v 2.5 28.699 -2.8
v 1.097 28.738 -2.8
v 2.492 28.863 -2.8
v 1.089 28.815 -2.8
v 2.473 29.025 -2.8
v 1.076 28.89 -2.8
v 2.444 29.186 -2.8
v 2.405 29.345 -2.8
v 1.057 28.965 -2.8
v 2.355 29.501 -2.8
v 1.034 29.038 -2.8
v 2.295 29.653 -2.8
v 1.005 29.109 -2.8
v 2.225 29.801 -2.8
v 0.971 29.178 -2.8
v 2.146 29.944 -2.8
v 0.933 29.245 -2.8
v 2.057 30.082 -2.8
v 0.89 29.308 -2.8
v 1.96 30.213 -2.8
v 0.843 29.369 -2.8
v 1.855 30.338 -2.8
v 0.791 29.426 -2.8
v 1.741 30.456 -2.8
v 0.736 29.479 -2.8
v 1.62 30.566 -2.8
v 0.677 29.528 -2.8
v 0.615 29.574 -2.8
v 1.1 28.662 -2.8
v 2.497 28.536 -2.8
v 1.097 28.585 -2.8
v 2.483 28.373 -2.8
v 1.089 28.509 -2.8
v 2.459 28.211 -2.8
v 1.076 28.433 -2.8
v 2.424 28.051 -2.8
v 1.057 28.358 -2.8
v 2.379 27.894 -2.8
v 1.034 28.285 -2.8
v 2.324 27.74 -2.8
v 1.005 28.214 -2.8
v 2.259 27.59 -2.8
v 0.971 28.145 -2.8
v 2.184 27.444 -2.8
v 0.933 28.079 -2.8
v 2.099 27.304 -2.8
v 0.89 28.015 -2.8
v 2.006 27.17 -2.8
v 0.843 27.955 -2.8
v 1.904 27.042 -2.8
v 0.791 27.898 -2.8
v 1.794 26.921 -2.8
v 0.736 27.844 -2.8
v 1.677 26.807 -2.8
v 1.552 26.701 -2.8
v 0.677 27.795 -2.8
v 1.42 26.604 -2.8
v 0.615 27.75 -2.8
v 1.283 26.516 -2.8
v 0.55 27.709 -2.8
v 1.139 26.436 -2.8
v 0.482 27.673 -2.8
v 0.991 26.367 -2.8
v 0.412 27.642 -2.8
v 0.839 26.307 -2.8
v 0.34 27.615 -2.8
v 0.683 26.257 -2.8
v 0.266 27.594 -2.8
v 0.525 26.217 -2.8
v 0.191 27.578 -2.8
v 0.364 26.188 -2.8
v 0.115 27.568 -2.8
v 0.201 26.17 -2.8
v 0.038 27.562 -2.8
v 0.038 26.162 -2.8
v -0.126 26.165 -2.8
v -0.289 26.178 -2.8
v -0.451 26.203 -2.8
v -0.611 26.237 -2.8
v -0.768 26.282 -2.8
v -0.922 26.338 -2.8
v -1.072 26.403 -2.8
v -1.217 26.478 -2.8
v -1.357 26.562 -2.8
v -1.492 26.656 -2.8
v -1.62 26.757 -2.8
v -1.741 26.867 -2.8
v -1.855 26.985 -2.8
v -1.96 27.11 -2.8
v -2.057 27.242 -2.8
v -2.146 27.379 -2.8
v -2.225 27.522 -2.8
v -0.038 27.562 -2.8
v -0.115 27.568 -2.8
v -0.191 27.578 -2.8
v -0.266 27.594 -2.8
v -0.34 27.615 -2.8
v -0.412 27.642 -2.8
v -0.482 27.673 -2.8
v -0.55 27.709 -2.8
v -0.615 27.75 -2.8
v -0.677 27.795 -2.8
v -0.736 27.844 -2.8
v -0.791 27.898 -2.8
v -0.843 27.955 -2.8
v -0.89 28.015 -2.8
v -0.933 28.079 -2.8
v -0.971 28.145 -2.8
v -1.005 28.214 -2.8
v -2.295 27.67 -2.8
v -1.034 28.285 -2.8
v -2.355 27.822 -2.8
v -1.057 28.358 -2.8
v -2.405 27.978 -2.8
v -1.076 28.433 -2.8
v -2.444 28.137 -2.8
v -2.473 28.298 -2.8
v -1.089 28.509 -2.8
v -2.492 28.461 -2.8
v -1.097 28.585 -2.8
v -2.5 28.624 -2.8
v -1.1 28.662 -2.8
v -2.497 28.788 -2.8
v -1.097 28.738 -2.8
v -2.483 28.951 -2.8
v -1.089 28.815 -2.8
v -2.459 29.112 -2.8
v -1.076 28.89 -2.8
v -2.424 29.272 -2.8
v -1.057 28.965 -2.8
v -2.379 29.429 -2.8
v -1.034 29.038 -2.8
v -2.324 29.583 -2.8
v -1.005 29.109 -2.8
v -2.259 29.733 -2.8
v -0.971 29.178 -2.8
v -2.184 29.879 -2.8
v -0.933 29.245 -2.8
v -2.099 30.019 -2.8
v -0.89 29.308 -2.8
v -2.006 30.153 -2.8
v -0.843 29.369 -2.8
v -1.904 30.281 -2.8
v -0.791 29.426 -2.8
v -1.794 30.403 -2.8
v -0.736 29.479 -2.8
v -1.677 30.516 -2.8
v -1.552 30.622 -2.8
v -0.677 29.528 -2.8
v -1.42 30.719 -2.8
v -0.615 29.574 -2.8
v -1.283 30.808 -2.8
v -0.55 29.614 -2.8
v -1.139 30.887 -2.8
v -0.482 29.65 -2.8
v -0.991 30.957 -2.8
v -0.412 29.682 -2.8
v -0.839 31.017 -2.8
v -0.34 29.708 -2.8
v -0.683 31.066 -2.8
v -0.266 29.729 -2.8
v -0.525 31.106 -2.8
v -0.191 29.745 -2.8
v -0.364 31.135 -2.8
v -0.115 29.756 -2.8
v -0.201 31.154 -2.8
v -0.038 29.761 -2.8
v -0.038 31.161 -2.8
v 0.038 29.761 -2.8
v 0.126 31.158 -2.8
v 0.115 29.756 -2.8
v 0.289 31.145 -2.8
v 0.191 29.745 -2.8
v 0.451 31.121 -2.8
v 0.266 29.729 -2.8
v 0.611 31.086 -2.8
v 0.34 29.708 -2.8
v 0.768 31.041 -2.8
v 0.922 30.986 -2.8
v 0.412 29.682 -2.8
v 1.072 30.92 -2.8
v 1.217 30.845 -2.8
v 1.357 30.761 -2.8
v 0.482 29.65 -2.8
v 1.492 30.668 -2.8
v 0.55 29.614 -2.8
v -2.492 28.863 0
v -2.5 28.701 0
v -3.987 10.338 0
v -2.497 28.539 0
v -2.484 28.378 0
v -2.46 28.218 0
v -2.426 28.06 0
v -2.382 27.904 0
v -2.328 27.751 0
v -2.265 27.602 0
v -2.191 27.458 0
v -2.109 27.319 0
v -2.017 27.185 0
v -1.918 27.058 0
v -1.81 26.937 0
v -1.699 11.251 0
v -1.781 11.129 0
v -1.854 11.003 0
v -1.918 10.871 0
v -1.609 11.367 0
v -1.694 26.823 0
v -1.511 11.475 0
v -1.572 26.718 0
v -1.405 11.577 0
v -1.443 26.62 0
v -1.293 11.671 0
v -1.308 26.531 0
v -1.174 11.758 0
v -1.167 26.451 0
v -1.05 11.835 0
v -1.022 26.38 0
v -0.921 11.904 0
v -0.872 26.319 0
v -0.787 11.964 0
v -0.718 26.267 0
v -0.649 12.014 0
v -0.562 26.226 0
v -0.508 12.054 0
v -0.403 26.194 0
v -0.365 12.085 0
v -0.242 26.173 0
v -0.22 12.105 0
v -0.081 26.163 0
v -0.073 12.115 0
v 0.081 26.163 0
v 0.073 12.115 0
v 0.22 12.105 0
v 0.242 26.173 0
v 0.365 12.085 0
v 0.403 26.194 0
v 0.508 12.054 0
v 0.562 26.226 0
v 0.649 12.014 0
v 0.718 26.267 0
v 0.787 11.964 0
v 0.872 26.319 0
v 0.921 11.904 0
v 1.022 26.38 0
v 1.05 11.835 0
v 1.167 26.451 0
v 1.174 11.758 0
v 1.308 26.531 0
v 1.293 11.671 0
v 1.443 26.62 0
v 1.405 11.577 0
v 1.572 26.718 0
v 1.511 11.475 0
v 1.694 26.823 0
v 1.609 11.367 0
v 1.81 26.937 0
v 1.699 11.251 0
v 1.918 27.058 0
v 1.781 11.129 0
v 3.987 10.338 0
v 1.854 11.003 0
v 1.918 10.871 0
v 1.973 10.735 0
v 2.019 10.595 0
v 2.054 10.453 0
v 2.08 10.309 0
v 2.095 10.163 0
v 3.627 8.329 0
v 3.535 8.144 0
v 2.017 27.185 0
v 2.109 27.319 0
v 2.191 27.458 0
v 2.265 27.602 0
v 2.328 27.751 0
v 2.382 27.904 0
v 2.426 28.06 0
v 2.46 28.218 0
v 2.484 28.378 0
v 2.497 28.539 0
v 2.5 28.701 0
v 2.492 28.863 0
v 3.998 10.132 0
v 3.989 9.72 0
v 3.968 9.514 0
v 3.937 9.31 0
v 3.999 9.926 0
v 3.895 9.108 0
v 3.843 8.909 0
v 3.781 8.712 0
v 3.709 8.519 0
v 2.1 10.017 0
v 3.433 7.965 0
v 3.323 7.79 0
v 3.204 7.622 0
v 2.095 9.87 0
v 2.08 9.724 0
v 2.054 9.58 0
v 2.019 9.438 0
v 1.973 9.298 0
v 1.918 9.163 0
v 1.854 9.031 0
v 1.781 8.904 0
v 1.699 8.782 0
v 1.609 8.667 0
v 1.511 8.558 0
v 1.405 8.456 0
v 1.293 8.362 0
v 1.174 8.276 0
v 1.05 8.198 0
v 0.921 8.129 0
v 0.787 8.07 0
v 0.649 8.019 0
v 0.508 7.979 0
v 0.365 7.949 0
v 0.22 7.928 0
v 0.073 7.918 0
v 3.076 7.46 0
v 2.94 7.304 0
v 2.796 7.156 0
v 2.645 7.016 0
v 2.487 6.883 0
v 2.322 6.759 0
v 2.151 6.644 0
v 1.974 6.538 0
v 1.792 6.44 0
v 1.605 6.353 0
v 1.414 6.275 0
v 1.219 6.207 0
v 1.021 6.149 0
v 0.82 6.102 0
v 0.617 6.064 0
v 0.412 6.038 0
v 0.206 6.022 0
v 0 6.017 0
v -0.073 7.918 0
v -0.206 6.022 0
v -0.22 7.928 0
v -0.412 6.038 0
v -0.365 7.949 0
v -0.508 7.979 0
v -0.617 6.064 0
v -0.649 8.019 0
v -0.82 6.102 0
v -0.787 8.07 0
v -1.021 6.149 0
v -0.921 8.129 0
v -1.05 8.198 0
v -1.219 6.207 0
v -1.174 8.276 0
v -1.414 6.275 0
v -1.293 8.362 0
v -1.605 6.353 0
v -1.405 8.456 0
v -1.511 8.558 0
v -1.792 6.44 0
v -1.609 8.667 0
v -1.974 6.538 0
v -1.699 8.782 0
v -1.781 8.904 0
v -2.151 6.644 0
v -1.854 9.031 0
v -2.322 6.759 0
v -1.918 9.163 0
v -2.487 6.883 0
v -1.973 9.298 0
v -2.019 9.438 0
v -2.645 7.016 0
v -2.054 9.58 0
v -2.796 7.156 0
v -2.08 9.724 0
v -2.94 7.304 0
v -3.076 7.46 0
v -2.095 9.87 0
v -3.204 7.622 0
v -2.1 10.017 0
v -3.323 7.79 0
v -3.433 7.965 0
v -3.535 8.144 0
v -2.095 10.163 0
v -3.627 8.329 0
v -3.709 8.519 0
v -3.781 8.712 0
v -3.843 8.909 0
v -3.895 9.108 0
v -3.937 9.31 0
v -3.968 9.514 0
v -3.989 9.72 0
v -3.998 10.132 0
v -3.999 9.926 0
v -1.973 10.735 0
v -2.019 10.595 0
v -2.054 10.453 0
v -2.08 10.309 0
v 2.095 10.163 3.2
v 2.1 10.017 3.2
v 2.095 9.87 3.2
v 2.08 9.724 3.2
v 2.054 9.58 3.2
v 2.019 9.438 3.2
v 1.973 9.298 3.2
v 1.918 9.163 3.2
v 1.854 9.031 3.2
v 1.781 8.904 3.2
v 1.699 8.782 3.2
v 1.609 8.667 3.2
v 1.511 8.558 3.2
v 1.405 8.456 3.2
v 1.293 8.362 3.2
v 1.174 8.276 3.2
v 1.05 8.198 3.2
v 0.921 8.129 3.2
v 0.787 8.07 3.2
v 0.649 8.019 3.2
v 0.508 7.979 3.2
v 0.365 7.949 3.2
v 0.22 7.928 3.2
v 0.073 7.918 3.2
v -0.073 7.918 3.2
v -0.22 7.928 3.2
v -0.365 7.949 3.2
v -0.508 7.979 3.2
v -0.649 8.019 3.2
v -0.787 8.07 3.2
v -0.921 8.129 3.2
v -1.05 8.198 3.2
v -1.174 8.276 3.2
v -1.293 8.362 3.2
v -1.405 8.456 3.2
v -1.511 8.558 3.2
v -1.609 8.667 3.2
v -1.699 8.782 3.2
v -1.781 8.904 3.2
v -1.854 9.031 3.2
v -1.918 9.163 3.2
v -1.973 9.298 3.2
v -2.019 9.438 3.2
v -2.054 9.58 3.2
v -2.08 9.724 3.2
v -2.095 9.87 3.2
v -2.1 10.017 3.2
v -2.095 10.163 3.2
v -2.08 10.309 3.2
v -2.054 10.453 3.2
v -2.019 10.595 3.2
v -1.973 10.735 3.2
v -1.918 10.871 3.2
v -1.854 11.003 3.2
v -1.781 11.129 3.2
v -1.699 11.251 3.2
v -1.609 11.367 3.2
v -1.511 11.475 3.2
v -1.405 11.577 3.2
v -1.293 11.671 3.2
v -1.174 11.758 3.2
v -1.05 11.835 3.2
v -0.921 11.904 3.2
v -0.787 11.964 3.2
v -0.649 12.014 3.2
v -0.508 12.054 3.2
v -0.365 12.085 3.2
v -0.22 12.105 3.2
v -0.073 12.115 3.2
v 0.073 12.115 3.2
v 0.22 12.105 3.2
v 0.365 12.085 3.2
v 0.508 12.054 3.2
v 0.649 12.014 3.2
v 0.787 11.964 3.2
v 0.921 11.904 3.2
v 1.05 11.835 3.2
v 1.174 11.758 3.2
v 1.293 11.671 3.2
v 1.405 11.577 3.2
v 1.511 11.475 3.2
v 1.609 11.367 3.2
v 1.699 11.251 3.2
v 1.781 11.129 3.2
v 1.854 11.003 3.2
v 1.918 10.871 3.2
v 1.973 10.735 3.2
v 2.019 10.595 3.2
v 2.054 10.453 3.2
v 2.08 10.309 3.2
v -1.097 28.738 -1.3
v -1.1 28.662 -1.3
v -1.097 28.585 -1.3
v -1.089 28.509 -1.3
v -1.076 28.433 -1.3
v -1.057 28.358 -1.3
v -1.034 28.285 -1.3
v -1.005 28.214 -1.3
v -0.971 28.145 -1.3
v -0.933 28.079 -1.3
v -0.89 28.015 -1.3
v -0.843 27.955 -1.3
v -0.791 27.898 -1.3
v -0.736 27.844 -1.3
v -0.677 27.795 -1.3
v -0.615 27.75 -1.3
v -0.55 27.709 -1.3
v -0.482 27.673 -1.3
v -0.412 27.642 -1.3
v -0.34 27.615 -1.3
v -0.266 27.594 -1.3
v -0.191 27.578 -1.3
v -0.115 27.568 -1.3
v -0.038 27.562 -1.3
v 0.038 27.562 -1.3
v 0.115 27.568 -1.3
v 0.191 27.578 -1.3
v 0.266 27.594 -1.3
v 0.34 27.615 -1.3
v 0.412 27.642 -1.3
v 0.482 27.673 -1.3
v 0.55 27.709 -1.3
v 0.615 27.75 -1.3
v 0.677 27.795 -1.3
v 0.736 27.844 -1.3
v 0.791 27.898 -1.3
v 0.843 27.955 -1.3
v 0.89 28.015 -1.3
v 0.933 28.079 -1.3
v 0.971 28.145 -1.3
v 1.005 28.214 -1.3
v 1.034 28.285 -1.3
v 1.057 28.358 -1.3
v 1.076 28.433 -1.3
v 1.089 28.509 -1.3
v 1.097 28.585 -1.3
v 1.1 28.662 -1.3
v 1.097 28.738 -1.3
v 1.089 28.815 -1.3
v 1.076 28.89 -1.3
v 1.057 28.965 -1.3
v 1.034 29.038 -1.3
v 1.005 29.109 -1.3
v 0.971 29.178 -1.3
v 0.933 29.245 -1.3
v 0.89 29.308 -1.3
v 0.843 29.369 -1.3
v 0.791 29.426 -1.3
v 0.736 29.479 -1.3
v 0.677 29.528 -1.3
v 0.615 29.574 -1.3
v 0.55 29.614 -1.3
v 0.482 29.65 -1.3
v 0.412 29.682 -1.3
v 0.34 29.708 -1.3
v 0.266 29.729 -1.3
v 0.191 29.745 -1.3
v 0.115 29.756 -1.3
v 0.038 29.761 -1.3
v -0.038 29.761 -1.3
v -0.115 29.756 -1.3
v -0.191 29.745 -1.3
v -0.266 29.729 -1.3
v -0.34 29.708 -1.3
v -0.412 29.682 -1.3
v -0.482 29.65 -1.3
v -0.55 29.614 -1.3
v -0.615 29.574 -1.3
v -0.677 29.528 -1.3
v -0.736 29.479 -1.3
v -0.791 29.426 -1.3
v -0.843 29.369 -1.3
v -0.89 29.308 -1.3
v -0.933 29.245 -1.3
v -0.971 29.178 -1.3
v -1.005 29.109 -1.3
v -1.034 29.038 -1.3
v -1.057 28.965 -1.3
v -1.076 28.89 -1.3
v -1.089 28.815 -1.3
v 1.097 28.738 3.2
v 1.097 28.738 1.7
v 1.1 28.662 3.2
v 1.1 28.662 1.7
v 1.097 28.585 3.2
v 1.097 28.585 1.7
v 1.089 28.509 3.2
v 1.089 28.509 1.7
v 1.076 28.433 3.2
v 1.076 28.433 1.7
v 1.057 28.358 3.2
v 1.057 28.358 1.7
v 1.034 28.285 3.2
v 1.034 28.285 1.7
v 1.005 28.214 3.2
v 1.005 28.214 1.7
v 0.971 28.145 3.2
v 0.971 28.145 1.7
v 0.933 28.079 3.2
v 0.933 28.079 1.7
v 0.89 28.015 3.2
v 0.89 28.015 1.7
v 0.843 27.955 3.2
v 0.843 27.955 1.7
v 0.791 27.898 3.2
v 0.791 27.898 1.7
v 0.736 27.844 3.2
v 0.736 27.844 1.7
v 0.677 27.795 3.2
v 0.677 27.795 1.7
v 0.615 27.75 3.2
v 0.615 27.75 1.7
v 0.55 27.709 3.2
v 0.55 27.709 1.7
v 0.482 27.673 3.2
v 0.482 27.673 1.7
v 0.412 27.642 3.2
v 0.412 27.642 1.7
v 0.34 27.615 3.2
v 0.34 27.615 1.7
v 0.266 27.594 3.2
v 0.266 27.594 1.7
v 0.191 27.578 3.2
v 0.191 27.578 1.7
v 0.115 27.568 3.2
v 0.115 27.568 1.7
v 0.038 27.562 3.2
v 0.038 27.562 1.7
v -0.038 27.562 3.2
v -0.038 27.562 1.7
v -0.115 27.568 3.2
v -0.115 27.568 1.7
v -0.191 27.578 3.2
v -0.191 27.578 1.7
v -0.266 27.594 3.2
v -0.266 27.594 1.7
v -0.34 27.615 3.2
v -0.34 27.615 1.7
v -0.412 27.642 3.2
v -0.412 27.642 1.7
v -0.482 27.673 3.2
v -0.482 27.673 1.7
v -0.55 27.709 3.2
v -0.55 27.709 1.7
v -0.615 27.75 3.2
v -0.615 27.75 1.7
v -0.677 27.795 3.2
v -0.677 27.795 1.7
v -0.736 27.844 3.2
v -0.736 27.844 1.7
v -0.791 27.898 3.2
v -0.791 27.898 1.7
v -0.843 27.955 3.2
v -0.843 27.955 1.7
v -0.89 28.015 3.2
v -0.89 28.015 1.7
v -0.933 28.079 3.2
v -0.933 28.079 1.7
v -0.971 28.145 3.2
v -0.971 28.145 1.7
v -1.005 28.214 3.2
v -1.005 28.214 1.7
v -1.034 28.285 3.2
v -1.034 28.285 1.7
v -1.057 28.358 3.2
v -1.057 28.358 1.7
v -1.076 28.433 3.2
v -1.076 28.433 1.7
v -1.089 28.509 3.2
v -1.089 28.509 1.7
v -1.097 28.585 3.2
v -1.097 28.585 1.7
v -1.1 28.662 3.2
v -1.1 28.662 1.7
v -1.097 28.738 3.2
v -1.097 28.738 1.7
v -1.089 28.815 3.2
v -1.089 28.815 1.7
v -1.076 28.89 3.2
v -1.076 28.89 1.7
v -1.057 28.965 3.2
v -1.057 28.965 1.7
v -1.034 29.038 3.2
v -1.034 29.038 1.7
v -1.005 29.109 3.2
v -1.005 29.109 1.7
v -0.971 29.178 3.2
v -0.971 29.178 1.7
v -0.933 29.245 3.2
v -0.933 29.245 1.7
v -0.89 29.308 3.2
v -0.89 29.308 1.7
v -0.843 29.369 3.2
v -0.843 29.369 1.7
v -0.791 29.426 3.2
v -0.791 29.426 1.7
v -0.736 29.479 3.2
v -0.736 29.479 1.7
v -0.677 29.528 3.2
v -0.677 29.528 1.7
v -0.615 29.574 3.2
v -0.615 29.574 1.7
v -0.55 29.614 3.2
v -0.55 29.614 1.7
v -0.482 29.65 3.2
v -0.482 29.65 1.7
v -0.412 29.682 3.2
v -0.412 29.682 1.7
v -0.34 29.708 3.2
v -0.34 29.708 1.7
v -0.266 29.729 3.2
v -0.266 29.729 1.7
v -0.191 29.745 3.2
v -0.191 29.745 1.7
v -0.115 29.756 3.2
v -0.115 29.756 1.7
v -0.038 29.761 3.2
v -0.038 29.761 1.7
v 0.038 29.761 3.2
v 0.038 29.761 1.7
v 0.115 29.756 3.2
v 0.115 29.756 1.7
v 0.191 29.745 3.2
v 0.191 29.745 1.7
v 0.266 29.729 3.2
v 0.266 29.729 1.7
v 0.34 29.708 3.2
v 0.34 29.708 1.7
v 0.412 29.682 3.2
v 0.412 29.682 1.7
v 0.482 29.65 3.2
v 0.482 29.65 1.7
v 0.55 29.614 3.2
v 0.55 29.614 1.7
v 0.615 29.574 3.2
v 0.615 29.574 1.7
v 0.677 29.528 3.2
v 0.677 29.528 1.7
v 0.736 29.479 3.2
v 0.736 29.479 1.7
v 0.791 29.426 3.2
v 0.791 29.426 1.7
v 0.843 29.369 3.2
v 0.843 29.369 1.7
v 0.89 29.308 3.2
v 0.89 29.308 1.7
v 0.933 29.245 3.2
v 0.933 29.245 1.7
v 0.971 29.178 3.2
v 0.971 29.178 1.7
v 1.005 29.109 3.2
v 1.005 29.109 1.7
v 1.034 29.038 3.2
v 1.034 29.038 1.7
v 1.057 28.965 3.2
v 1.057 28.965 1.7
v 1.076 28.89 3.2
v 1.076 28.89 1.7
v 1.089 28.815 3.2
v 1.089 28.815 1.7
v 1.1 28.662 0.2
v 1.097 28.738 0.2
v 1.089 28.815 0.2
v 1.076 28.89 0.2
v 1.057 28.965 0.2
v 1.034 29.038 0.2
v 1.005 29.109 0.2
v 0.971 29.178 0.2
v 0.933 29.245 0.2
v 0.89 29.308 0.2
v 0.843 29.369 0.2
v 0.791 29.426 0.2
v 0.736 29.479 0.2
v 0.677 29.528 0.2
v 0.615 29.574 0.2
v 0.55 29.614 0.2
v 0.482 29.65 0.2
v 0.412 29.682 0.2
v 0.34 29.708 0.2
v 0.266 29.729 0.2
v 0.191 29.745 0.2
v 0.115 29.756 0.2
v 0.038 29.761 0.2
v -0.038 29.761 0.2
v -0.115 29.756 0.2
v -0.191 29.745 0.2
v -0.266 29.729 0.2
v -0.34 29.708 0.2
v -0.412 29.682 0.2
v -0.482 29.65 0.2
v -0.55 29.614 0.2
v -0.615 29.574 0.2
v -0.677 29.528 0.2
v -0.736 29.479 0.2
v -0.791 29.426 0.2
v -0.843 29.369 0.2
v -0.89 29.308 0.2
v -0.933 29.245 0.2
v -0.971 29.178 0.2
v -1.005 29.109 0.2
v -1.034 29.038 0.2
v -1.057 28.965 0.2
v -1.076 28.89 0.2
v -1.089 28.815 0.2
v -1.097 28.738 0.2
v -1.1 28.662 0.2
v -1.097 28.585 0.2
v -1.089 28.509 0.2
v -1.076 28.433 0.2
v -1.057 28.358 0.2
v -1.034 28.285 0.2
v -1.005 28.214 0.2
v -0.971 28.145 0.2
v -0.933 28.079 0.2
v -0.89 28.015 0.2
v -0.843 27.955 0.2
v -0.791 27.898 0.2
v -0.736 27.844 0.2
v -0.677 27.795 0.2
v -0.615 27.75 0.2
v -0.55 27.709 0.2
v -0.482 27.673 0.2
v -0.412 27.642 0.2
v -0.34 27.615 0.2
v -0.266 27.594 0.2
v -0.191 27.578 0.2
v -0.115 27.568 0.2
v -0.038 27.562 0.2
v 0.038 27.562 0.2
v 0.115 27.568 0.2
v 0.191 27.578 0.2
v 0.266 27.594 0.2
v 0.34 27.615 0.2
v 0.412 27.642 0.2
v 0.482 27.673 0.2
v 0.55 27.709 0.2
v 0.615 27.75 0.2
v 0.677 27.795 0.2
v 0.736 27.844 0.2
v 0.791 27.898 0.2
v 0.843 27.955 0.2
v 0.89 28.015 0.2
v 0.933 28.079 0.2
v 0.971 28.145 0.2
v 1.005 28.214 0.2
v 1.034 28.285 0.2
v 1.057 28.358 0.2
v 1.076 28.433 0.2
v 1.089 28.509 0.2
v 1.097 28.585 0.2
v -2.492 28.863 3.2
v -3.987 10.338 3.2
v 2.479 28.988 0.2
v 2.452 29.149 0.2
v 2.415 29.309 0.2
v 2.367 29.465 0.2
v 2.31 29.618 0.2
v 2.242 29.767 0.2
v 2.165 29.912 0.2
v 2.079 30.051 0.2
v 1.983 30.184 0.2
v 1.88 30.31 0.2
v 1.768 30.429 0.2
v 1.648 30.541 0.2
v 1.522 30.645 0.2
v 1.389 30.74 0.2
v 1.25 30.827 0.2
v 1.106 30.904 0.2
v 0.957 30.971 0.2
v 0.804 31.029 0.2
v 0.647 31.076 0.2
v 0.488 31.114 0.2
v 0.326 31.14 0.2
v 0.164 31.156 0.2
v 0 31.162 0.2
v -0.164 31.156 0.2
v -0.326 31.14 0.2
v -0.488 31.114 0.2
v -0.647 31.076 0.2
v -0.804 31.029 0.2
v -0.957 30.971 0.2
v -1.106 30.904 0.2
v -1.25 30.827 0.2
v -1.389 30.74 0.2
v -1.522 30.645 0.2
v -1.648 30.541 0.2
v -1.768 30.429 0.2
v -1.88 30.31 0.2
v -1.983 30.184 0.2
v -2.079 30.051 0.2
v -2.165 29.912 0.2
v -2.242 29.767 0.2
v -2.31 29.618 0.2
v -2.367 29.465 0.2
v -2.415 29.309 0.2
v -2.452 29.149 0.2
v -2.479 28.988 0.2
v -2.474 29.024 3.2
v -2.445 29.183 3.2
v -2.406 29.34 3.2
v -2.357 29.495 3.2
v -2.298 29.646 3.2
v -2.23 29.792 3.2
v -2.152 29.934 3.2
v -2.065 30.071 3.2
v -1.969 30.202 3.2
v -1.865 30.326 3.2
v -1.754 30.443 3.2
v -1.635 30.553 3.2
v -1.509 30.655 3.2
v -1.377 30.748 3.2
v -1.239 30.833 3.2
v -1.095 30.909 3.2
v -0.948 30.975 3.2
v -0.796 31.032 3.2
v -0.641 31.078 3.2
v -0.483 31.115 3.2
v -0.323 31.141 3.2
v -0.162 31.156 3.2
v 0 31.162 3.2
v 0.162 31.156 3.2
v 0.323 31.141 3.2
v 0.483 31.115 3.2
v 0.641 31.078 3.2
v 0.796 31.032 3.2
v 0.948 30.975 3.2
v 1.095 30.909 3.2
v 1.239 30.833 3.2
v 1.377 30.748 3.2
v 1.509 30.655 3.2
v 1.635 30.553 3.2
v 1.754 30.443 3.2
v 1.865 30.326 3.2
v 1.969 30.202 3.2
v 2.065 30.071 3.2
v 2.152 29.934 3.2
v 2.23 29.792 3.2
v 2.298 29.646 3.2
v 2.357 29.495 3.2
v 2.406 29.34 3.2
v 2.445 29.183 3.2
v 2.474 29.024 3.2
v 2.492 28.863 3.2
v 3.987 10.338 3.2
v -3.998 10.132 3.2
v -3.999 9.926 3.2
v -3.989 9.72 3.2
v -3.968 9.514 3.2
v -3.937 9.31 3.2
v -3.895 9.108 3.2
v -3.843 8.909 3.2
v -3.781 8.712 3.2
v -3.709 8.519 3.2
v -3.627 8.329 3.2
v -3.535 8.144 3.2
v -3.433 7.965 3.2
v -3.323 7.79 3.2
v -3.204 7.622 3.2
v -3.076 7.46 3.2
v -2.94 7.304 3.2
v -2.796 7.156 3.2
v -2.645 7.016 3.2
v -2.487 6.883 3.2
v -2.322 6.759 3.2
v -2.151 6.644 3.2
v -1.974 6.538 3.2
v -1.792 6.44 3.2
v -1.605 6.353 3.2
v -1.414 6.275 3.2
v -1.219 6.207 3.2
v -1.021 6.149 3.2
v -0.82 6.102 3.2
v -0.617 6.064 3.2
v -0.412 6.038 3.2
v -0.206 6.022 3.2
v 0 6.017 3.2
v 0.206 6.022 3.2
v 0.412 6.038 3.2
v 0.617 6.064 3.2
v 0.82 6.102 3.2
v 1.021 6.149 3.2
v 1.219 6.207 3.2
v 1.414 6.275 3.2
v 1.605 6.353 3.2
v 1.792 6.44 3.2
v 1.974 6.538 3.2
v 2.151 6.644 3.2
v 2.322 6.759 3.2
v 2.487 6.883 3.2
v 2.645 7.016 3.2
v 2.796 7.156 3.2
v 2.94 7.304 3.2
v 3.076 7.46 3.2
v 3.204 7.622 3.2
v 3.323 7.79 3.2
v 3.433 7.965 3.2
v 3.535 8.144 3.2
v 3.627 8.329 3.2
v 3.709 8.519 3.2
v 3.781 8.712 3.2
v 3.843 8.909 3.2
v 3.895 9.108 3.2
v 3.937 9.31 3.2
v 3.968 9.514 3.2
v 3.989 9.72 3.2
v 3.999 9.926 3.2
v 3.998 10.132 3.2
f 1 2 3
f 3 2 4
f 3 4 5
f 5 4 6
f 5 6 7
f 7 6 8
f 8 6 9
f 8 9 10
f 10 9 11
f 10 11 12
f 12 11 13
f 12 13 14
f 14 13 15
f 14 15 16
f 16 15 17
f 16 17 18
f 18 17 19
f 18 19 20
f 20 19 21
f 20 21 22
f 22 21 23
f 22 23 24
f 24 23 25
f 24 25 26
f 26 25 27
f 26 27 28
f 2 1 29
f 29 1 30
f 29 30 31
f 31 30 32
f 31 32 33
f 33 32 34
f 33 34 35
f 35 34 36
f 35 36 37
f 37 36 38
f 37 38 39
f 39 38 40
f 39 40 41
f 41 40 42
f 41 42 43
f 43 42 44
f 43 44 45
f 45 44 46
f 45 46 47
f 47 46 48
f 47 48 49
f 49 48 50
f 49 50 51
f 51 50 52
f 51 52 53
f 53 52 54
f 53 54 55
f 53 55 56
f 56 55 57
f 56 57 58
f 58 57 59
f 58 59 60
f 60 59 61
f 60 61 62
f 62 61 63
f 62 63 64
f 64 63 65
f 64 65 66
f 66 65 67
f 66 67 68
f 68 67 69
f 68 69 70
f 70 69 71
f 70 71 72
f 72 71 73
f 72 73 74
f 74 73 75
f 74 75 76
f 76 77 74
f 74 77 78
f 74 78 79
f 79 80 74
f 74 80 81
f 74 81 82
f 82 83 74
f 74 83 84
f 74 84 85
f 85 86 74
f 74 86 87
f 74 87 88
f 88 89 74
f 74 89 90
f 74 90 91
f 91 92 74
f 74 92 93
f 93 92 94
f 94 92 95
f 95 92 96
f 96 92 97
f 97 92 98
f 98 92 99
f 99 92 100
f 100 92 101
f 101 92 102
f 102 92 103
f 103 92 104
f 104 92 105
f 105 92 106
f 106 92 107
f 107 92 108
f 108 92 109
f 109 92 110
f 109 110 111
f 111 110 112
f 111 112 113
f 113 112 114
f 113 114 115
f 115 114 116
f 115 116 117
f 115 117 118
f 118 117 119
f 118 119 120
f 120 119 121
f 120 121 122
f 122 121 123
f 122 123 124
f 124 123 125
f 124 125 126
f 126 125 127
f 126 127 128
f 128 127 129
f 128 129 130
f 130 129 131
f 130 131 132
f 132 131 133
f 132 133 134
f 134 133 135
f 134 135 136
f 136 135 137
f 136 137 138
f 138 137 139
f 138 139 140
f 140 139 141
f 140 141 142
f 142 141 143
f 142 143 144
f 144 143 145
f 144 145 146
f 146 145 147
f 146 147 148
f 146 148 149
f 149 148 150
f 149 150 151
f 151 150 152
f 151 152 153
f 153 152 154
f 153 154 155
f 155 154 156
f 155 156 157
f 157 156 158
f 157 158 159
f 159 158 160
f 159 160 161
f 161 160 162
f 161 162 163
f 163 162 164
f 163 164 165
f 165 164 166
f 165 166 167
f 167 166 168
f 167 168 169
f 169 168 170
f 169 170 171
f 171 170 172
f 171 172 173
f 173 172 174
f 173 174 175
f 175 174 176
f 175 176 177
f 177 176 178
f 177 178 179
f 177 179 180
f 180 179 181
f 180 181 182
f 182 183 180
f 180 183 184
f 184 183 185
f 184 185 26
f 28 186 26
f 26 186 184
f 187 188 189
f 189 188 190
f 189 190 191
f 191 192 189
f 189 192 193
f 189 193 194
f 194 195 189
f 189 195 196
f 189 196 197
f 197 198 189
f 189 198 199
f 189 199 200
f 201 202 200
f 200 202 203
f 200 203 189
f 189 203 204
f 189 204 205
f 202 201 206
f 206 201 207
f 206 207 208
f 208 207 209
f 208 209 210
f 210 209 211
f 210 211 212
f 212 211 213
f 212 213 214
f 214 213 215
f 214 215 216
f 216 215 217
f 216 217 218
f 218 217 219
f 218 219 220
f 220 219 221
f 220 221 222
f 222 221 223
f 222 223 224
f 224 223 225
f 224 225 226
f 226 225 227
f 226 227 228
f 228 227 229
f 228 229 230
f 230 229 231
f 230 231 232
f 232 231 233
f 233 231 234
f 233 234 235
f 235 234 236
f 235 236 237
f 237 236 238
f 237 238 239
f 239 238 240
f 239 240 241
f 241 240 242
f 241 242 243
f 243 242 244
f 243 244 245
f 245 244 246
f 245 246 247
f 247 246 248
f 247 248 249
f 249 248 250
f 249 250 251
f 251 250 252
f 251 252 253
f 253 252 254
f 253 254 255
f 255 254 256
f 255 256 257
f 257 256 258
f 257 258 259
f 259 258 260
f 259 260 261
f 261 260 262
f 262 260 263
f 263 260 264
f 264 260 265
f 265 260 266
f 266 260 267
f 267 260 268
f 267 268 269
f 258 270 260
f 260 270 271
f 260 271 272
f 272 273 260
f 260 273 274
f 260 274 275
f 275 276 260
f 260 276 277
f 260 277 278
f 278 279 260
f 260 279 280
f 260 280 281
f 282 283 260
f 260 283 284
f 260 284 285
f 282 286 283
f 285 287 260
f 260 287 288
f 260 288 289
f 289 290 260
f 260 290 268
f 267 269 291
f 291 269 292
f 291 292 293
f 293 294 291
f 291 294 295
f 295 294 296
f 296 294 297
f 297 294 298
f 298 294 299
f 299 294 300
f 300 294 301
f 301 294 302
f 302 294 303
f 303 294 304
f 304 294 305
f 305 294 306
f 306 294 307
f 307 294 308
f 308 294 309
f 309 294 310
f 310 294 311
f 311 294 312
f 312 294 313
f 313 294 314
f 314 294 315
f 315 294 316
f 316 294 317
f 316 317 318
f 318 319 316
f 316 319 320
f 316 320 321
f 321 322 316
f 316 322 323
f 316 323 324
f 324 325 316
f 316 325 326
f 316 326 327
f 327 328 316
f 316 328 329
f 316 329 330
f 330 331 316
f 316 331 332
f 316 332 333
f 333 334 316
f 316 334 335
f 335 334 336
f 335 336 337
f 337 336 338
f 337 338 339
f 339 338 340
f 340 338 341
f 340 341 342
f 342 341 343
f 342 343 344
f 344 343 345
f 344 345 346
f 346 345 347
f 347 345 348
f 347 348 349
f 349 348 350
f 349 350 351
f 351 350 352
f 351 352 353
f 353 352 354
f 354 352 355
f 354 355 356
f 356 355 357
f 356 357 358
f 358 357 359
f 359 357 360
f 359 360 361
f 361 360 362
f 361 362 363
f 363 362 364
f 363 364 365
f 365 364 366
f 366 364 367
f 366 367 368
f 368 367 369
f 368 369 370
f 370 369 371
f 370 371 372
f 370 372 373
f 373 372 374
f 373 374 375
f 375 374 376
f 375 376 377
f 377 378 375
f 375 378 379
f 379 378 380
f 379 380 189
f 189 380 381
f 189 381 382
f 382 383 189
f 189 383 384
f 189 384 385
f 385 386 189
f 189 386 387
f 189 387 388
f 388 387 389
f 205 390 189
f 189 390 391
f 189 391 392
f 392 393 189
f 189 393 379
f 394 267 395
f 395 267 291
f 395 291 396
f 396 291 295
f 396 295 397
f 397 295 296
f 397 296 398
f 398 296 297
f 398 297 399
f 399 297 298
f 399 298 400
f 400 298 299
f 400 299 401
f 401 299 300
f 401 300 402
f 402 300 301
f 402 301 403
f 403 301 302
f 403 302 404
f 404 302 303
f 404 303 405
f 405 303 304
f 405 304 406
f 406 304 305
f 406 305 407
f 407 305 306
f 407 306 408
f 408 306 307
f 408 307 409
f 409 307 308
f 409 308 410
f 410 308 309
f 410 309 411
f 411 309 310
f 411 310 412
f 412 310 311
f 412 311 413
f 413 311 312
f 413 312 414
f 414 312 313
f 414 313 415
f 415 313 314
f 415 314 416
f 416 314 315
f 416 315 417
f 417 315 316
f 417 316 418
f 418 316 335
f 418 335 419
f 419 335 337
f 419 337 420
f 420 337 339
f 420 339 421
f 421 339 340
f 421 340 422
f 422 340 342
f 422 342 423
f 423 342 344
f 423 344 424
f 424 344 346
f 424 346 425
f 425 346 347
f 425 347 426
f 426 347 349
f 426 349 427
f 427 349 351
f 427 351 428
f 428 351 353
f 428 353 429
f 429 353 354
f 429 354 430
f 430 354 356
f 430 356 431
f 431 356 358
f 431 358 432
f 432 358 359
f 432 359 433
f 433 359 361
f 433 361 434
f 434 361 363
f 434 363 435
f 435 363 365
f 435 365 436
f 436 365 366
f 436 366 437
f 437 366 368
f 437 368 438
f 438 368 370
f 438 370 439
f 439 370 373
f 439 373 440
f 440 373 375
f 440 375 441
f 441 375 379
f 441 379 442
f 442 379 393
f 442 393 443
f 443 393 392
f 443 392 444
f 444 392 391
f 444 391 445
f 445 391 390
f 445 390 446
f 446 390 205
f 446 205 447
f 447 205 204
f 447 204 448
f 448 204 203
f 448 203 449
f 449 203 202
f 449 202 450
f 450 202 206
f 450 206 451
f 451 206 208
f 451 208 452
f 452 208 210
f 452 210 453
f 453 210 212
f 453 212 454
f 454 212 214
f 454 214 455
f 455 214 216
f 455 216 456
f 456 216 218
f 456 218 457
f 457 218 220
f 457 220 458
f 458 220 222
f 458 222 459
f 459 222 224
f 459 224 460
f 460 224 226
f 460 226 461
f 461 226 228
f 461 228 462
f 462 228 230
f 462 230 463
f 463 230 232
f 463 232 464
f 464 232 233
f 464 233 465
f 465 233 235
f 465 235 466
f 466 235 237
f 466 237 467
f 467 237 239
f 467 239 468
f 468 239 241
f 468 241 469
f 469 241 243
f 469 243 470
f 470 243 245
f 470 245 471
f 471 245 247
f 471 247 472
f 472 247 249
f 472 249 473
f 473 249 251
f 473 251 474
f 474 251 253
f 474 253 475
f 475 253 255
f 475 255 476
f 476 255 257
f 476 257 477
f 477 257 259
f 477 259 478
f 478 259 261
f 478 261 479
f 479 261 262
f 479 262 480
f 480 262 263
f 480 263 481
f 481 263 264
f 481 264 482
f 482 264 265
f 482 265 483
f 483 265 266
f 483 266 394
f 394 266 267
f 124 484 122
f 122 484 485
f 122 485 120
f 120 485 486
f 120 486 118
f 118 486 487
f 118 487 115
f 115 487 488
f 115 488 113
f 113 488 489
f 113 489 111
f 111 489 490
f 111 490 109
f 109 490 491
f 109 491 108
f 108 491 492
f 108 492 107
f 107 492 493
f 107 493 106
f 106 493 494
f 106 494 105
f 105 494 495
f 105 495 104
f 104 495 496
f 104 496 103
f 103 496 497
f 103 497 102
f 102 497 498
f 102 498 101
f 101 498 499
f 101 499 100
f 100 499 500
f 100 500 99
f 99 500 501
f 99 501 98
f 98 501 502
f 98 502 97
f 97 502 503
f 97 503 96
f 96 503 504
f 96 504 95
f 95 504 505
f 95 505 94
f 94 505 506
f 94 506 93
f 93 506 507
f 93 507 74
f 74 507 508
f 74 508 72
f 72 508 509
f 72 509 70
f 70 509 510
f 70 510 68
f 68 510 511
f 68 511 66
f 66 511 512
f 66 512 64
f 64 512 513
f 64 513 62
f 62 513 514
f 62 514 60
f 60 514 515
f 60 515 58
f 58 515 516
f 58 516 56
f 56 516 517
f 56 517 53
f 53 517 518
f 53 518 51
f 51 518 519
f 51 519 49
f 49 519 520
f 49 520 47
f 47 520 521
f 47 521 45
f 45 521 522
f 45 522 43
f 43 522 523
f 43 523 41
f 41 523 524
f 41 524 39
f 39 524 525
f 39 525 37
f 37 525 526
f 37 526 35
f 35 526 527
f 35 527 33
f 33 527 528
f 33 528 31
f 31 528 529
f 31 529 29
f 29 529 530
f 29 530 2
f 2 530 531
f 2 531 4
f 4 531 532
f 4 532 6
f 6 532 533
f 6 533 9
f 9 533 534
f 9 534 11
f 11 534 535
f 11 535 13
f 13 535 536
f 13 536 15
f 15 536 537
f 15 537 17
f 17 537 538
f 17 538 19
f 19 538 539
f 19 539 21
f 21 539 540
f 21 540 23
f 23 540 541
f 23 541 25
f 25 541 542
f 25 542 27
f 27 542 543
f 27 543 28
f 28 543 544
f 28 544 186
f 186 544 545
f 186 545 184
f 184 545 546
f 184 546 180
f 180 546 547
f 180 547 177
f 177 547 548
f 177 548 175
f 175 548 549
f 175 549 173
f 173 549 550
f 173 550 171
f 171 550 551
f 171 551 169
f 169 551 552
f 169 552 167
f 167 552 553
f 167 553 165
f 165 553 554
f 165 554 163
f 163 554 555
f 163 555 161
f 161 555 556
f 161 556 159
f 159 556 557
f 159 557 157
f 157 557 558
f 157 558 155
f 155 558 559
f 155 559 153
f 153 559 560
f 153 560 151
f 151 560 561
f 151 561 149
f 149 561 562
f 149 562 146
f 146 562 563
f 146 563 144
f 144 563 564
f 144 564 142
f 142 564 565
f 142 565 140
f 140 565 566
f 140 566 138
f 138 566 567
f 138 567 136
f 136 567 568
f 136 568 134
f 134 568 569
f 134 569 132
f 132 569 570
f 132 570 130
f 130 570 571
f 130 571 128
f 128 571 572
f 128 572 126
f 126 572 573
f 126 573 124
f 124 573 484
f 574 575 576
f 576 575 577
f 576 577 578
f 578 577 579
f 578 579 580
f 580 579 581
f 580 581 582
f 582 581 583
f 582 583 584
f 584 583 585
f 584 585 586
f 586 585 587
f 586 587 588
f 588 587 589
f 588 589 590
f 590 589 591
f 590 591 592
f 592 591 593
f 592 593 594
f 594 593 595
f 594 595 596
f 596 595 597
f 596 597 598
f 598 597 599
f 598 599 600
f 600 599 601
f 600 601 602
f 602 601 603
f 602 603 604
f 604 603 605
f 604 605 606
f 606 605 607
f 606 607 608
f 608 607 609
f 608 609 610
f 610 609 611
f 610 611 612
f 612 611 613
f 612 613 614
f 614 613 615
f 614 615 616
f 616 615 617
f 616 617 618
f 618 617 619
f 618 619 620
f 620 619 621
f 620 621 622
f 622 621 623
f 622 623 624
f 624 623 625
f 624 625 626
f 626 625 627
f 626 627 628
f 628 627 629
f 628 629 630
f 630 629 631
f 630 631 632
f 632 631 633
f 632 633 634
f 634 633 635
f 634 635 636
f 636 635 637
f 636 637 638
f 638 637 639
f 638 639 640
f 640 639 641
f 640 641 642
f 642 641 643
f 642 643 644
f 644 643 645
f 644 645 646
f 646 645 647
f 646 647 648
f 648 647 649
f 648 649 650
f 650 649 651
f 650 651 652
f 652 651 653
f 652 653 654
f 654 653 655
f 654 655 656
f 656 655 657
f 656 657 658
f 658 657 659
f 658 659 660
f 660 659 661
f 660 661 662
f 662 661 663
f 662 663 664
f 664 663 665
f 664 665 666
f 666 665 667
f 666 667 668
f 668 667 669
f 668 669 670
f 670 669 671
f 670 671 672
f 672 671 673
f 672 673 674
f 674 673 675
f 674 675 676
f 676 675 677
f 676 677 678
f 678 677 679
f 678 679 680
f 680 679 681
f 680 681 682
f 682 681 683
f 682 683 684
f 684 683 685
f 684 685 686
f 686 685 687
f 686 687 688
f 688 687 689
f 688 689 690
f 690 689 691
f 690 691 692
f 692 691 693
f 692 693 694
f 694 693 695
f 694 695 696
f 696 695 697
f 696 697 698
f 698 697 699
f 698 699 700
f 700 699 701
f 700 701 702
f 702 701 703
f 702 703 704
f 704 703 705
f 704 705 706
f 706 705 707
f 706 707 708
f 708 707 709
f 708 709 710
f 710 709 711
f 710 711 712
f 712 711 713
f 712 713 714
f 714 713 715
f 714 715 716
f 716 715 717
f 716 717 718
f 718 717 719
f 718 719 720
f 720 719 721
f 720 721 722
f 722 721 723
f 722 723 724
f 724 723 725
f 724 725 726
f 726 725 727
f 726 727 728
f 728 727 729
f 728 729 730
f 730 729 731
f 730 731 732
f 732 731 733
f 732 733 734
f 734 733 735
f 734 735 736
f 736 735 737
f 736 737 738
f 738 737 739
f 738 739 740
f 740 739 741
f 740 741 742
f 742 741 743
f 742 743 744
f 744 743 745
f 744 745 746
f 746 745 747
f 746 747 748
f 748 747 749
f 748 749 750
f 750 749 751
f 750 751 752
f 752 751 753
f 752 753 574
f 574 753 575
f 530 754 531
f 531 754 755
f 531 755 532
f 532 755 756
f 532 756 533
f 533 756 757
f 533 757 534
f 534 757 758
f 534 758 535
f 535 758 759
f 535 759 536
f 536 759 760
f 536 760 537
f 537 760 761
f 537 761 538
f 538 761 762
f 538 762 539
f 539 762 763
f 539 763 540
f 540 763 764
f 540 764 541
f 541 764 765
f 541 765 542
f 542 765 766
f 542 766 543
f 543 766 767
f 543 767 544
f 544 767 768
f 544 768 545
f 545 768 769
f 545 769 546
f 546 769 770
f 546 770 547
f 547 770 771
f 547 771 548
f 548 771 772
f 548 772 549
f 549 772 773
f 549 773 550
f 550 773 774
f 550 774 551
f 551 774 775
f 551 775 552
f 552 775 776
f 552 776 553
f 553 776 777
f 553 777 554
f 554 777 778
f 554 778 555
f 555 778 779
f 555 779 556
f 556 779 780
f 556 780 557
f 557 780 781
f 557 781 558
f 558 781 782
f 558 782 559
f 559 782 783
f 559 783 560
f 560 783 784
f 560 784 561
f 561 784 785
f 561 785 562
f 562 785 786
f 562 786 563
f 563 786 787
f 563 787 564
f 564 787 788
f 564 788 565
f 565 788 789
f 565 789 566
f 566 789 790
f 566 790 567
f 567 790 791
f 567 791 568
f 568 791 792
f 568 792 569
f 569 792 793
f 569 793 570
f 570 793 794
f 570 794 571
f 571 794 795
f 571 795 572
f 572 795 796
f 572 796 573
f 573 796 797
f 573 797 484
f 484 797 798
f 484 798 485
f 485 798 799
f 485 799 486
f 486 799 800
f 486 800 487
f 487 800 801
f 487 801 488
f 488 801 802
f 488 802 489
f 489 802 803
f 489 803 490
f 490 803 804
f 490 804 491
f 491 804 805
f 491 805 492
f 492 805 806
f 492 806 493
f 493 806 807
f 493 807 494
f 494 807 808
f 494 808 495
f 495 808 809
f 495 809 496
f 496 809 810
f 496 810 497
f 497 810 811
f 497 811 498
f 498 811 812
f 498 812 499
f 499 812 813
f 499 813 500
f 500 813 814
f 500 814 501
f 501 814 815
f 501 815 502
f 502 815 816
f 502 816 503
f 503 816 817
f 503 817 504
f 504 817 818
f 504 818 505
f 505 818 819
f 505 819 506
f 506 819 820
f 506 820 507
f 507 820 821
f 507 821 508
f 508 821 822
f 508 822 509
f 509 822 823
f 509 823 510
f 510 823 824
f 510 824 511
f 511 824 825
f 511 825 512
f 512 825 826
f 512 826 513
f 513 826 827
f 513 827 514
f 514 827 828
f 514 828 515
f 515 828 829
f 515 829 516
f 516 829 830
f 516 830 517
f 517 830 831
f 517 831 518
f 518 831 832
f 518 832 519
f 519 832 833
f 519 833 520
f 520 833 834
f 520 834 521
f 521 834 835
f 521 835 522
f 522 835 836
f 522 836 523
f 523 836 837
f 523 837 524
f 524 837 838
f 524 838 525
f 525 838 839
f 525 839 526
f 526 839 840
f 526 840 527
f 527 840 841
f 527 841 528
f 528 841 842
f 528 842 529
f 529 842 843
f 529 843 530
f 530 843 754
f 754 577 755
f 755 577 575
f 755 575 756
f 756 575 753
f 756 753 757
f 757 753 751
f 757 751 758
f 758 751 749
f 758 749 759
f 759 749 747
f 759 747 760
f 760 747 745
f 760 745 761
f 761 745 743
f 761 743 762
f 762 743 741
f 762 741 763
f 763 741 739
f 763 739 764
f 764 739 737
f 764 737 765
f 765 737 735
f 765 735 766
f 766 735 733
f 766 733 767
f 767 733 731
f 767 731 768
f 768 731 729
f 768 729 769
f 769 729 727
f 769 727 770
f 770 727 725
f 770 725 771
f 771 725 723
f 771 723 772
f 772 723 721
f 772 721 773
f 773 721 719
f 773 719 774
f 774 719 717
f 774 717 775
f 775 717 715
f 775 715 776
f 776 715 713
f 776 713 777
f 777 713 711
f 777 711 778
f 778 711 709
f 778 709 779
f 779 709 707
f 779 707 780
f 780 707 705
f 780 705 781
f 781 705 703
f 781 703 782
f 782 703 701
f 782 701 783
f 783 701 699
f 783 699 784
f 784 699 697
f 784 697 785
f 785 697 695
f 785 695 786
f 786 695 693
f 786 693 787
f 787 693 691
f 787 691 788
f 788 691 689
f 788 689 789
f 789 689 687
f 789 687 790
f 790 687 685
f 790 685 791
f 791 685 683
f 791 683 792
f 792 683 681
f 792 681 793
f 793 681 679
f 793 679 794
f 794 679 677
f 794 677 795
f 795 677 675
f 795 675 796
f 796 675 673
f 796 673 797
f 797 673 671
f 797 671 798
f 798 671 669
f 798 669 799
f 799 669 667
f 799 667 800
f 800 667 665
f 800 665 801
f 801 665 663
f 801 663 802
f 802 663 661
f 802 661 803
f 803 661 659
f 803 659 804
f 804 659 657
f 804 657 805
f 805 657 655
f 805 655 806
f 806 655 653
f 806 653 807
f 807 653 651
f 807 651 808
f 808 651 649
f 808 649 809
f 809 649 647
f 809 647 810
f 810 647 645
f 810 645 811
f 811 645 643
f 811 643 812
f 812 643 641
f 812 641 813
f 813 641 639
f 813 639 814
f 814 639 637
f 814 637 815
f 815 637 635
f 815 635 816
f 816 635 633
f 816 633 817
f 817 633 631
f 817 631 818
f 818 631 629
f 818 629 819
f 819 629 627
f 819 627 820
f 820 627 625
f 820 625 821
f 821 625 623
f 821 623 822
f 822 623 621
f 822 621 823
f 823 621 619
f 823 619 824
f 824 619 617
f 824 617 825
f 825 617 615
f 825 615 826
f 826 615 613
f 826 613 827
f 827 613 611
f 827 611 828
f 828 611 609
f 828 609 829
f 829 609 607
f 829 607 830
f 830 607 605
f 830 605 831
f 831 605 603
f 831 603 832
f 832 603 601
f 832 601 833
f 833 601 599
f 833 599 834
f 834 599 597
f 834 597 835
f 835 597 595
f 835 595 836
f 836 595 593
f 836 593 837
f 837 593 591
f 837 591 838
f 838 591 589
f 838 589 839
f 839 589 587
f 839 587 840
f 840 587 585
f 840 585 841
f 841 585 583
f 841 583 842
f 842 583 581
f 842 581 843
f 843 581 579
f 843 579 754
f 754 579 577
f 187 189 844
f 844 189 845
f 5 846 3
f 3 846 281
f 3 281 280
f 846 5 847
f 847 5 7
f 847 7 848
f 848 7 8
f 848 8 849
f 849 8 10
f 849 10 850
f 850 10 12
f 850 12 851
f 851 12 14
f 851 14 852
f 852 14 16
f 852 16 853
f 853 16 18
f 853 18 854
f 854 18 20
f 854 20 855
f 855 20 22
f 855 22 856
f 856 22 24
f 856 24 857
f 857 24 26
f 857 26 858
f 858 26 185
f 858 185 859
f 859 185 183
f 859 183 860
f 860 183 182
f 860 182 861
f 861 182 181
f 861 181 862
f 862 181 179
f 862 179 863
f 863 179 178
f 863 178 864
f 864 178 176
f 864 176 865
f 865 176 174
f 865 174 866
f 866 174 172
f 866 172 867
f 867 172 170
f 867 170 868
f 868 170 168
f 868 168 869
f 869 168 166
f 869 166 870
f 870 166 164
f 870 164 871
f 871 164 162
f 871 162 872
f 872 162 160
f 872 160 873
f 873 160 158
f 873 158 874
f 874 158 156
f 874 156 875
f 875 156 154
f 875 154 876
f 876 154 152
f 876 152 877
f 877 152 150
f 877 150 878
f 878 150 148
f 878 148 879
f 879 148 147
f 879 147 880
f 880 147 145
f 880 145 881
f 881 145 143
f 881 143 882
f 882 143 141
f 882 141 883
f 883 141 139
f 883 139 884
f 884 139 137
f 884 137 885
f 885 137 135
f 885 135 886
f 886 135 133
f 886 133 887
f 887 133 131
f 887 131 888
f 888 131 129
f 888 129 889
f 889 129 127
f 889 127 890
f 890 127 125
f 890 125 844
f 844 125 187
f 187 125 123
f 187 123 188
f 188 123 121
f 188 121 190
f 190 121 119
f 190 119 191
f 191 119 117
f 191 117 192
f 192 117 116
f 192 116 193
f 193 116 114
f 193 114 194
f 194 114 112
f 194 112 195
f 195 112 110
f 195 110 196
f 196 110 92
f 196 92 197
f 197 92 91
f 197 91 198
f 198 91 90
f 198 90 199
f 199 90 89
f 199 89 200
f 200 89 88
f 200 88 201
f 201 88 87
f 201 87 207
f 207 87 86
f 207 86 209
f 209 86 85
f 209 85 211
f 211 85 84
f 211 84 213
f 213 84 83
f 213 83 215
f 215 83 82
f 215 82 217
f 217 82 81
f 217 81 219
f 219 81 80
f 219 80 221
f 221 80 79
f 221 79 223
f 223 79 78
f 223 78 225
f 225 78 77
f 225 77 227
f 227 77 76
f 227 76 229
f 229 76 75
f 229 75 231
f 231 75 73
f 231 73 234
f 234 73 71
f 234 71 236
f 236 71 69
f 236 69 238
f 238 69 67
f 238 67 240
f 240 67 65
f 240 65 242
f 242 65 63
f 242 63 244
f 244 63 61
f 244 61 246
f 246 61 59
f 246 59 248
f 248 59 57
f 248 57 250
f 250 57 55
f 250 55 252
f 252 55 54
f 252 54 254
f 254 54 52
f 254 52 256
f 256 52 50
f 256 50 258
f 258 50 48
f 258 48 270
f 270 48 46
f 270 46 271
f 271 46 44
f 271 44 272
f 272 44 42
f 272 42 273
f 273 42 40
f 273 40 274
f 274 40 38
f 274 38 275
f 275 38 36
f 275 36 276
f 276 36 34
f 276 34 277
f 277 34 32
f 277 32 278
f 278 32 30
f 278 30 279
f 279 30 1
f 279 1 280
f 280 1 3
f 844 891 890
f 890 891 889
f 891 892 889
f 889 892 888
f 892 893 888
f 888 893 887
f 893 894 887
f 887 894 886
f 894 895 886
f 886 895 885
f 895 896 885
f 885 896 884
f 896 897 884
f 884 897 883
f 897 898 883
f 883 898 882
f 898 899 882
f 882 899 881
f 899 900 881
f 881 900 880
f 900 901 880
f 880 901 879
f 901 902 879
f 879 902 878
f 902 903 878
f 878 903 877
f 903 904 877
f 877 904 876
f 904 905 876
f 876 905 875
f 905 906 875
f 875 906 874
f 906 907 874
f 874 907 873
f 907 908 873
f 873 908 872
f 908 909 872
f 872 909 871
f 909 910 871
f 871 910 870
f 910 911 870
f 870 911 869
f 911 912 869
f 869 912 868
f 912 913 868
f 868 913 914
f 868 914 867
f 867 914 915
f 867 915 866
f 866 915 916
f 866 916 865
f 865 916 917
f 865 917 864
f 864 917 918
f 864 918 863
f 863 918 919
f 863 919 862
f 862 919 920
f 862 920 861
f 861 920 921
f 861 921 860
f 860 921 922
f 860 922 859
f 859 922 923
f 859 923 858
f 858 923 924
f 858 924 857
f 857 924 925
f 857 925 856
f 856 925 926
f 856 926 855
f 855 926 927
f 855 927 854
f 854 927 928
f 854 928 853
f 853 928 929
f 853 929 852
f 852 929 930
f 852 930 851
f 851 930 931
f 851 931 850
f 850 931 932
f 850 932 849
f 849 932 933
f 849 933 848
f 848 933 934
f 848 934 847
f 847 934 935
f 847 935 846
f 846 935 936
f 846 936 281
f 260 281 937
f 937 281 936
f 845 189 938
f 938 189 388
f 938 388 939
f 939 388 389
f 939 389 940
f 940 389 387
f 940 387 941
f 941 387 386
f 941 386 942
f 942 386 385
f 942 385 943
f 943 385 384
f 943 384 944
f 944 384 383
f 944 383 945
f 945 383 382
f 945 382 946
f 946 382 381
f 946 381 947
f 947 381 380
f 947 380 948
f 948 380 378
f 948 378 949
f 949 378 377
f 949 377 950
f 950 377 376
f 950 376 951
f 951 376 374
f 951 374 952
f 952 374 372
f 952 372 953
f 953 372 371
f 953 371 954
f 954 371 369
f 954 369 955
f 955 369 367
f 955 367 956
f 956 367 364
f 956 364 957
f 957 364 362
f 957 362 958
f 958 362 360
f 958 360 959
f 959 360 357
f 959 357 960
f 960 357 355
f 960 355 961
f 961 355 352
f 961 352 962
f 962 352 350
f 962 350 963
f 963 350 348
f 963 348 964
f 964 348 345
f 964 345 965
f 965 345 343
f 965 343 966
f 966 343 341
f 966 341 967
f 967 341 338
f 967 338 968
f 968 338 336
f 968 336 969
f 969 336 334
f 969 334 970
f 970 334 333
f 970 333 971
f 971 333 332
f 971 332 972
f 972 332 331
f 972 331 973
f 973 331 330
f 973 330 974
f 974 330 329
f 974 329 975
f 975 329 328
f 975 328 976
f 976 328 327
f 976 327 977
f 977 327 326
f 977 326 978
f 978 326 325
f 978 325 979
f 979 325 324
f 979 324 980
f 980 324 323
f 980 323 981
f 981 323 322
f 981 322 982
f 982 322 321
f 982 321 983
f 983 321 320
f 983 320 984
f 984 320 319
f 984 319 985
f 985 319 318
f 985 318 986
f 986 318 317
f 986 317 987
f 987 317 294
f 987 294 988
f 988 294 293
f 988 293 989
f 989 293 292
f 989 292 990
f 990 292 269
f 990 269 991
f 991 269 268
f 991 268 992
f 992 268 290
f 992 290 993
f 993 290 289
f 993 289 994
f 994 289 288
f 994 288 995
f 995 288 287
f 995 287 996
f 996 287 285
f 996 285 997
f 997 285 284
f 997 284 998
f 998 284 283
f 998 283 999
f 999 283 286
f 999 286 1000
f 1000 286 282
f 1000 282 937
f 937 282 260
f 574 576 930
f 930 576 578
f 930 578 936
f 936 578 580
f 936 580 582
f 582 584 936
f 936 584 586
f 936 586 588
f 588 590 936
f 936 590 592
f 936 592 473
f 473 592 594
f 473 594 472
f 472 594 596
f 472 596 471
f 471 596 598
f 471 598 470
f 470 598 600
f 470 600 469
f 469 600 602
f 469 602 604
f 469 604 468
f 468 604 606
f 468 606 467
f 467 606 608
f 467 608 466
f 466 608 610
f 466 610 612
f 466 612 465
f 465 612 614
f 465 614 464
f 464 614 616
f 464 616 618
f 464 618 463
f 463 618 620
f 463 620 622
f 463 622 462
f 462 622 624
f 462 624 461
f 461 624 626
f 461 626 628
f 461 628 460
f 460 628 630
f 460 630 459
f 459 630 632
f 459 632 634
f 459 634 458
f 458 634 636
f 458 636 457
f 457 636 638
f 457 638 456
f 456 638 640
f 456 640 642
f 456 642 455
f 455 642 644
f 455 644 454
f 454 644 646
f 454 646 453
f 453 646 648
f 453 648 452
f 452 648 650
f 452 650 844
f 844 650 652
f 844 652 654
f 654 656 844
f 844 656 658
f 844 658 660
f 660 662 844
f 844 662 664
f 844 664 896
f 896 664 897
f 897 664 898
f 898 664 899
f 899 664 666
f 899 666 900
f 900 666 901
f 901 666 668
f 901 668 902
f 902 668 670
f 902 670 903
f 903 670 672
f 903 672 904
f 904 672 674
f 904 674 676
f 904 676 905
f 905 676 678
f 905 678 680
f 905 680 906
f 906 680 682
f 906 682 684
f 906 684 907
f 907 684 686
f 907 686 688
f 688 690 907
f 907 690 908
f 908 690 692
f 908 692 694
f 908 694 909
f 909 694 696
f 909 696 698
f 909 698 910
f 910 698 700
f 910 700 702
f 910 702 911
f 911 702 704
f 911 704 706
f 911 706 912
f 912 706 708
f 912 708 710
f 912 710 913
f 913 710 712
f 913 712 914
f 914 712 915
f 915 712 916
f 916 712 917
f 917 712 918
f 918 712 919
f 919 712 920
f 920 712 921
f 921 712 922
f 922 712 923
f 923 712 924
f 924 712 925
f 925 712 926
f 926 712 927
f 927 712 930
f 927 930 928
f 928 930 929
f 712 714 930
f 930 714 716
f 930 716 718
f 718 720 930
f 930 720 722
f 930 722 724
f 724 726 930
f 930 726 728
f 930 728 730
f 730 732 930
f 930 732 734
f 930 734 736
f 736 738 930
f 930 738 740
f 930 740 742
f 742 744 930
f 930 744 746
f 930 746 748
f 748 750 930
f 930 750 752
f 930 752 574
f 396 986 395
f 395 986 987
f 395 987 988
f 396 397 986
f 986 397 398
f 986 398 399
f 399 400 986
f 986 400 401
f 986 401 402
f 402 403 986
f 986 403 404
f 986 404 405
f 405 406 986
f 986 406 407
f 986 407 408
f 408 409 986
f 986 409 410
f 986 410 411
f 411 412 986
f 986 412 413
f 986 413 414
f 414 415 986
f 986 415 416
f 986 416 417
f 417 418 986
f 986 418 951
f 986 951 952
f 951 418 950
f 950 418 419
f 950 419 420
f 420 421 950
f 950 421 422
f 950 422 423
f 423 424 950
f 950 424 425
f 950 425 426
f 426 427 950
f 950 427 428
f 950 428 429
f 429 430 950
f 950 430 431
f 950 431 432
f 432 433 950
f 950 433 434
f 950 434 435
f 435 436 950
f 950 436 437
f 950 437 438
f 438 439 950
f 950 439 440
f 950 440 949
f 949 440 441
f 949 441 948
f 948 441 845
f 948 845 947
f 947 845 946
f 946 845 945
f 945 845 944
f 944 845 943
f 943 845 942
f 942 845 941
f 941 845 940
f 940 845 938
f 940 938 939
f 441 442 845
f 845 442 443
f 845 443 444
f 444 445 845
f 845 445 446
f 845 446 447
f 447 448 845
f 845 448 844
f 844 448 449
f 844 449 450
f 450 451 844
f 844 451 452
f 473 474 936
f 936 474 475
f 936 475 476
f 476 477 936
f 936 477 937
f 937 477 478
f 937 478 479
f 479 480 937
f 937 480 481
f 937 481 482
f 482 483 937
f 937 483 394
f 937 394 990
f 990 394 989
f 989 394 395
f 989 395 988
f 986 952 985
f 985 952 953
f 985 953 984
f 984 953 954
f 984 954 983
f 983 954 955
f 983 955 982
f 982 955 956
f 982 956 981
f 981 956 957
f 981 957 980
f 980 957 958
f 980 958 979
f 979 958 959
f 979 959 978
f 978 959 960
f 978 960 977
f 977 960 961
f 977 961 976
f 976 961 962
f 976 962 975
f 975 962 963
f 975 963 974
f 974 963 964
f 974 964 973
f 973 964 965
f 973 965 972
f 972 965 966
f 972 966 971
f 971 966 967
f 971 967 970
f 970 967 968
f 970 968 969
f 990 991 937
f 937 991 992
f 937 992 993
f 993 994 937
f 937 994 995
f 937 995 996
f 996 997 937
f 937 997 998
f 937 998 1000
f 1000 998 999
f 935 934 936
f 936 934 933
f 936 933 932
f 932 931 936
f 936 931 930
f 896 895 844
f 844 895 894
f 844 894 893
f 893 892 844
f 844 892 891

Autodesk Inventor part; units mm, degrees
ref_plane "YZ Plane" through (0, 0, 0) normal (1, 0, 0) x (0, 1, 0)
ref_plane "XZ Plane" through (0, 0, 0) normal (0, 1, 0) x (-1, 0, 0)
ref_plane "XY Plane" through (0, 0, 0) normal (0, 0, 1) x (1, 0, 0)
sketch "Эскиз1" plane through (0, 0, 0) normal (0, 0, 1) x (1, 0, 0)
  circle A0 centre (0, 10.0167) radius 1.6 projected
  line L0 (25.2327, 9.549) -> (31.7335, -1.7106) projected
  arc A1 (11.3933, 4.2802) -> (25.2327, 9.549) centre (0, 55.0167) ccw projected
  line L1 (11.3933, 4.2802) -> (2.8284, 12.8451) projected
  arc A2 (2.8284, 12.8451) -> (-2.8284, 12.8451) centre (0, 10.0167) ccw projected
  line L2 (-2.8284, 12.8451) -> (-11.3933, 4.2802) projected
  arc A3 (-25.2327, 9.549) -> (-11.3933, 4.2802) centre (0, 55.0167) ccw projected
  line L3 (-31.7335, -1.7106) -> (-25.2327, 9.549) projected
  arc A4 (-31.7335, -1.7106) -> (31.7335, -1.7106) centre (0, 55.0167) ccw projected
  arc A5 (1.9935, 28.8226) -> (-1.9935, 28.8226) centre (0, 28.6617) ccw projected
  line L4 (-1.9935, 28.8226) -> (-3.4887, 10.2982) projected
  arc A6 (-3.4887, 10.2982) -> (3.4887, 10.2982) centre (0, 10.0167) ccw projected
  line L5 (3.4887, 10.2982) -> (1.9935, 28.8226) projected
  circle A7 centre (0, 28.6617) radius 1.1 projected
  circle A8 centre (0, 10.0167) radius 0.95 projected
  circle A9 centre (0, 28.6617) radius 1.6
  circle A10 centre (0, 10.0167) radius 2.1
  circle A11 centre (0, 10.0167) radius 4
  circle A12 centre (0, 28.6617) radius 2.5
  line L6 (-2.4919, 28.8628) -> (-3.987, 10.3385)
  line L7 (3.987, 10.3385) -> (2.4919, 28.8628)
  point P0 (0, 0)
  dimension "d0" = 3.2
  dimension "d1" = 4.2
  dimension "d2" = 8
  dimension "d3" = 5
extrude "Выдавливание1" add sketch "Эскиз1" along normal blind 3.2 contours L7 A11 L5 L1 | L1 L5 A12 L7 | L5 A11 L1 | L1 A2 L2 L4 A12 L5 | A11 L4 A6 L5 | A12 L5 A5 L4 | A11 L5 A6 L4 A2 | A12 L4 A5 L5 | A12 L4 L2 L6 | L2 L4 A11 L6 | A11 L4 L2 | A9
sketch "Эскиз2" plane through (0, 0, 0) normal (0, 0, -1) x (-1, 0, 0)
  line L0 (0, 6.9767) -> (0, 71.9606) projected
  line L1 (-1.9935, 28.8226) -> (-3.4887, 10.2982) projected
  arc A0 (-3.4887, 10.2982) -> (3.4887, 10.2982) centre (0, 10.0167) ccw projected
  line L2 (3.4887, 10.2982) -> (1.9935, 28.8226) projected
  arc A1 (1.9935, 28.8226) -> (-1.9935, 28.8226) centre (0, 28.6617) ccw projected
  circle A2 centre (0, 10.0167) radius 1.925 projected
  circle A3 centre (0, 28.6617) radius 1.1 projected
  circle A4 centre (0, 28.6617) radius 1.1 projected
  circle A5 centre (0, 10.0167) radius 2.1 projected
  arc A6 (-3.987, 10.3385) -> (3.987, 10.3385) centre (0, 10.0167) ccw projected
  line L3 (2.4919, 28.8628) -> (3.987, 10.3385) projected
  arc A7 (2.4919, 28.8628) -> (-2.4919, 28.8628) centre (0, 28.6617) ccw projected
  line L4 (-3.987, 10.3385) -> (-2.4919, 28.8628) projected
  circle A8 centre (0, 28.6617) radius 2.5
  point P0 (0, 0)
  point P1 (-2.4919, 28.8628)
extrude "Выдавливание2" add sketch "Эскиз2" along normal blind 2.8 contours A8 L1 A1 L0 A3 | L0 A3 A1 L2 A8 | A8 A7 L0 A1 L1 | L2 A1 L0 A7 A8
properties part number "shatun"
